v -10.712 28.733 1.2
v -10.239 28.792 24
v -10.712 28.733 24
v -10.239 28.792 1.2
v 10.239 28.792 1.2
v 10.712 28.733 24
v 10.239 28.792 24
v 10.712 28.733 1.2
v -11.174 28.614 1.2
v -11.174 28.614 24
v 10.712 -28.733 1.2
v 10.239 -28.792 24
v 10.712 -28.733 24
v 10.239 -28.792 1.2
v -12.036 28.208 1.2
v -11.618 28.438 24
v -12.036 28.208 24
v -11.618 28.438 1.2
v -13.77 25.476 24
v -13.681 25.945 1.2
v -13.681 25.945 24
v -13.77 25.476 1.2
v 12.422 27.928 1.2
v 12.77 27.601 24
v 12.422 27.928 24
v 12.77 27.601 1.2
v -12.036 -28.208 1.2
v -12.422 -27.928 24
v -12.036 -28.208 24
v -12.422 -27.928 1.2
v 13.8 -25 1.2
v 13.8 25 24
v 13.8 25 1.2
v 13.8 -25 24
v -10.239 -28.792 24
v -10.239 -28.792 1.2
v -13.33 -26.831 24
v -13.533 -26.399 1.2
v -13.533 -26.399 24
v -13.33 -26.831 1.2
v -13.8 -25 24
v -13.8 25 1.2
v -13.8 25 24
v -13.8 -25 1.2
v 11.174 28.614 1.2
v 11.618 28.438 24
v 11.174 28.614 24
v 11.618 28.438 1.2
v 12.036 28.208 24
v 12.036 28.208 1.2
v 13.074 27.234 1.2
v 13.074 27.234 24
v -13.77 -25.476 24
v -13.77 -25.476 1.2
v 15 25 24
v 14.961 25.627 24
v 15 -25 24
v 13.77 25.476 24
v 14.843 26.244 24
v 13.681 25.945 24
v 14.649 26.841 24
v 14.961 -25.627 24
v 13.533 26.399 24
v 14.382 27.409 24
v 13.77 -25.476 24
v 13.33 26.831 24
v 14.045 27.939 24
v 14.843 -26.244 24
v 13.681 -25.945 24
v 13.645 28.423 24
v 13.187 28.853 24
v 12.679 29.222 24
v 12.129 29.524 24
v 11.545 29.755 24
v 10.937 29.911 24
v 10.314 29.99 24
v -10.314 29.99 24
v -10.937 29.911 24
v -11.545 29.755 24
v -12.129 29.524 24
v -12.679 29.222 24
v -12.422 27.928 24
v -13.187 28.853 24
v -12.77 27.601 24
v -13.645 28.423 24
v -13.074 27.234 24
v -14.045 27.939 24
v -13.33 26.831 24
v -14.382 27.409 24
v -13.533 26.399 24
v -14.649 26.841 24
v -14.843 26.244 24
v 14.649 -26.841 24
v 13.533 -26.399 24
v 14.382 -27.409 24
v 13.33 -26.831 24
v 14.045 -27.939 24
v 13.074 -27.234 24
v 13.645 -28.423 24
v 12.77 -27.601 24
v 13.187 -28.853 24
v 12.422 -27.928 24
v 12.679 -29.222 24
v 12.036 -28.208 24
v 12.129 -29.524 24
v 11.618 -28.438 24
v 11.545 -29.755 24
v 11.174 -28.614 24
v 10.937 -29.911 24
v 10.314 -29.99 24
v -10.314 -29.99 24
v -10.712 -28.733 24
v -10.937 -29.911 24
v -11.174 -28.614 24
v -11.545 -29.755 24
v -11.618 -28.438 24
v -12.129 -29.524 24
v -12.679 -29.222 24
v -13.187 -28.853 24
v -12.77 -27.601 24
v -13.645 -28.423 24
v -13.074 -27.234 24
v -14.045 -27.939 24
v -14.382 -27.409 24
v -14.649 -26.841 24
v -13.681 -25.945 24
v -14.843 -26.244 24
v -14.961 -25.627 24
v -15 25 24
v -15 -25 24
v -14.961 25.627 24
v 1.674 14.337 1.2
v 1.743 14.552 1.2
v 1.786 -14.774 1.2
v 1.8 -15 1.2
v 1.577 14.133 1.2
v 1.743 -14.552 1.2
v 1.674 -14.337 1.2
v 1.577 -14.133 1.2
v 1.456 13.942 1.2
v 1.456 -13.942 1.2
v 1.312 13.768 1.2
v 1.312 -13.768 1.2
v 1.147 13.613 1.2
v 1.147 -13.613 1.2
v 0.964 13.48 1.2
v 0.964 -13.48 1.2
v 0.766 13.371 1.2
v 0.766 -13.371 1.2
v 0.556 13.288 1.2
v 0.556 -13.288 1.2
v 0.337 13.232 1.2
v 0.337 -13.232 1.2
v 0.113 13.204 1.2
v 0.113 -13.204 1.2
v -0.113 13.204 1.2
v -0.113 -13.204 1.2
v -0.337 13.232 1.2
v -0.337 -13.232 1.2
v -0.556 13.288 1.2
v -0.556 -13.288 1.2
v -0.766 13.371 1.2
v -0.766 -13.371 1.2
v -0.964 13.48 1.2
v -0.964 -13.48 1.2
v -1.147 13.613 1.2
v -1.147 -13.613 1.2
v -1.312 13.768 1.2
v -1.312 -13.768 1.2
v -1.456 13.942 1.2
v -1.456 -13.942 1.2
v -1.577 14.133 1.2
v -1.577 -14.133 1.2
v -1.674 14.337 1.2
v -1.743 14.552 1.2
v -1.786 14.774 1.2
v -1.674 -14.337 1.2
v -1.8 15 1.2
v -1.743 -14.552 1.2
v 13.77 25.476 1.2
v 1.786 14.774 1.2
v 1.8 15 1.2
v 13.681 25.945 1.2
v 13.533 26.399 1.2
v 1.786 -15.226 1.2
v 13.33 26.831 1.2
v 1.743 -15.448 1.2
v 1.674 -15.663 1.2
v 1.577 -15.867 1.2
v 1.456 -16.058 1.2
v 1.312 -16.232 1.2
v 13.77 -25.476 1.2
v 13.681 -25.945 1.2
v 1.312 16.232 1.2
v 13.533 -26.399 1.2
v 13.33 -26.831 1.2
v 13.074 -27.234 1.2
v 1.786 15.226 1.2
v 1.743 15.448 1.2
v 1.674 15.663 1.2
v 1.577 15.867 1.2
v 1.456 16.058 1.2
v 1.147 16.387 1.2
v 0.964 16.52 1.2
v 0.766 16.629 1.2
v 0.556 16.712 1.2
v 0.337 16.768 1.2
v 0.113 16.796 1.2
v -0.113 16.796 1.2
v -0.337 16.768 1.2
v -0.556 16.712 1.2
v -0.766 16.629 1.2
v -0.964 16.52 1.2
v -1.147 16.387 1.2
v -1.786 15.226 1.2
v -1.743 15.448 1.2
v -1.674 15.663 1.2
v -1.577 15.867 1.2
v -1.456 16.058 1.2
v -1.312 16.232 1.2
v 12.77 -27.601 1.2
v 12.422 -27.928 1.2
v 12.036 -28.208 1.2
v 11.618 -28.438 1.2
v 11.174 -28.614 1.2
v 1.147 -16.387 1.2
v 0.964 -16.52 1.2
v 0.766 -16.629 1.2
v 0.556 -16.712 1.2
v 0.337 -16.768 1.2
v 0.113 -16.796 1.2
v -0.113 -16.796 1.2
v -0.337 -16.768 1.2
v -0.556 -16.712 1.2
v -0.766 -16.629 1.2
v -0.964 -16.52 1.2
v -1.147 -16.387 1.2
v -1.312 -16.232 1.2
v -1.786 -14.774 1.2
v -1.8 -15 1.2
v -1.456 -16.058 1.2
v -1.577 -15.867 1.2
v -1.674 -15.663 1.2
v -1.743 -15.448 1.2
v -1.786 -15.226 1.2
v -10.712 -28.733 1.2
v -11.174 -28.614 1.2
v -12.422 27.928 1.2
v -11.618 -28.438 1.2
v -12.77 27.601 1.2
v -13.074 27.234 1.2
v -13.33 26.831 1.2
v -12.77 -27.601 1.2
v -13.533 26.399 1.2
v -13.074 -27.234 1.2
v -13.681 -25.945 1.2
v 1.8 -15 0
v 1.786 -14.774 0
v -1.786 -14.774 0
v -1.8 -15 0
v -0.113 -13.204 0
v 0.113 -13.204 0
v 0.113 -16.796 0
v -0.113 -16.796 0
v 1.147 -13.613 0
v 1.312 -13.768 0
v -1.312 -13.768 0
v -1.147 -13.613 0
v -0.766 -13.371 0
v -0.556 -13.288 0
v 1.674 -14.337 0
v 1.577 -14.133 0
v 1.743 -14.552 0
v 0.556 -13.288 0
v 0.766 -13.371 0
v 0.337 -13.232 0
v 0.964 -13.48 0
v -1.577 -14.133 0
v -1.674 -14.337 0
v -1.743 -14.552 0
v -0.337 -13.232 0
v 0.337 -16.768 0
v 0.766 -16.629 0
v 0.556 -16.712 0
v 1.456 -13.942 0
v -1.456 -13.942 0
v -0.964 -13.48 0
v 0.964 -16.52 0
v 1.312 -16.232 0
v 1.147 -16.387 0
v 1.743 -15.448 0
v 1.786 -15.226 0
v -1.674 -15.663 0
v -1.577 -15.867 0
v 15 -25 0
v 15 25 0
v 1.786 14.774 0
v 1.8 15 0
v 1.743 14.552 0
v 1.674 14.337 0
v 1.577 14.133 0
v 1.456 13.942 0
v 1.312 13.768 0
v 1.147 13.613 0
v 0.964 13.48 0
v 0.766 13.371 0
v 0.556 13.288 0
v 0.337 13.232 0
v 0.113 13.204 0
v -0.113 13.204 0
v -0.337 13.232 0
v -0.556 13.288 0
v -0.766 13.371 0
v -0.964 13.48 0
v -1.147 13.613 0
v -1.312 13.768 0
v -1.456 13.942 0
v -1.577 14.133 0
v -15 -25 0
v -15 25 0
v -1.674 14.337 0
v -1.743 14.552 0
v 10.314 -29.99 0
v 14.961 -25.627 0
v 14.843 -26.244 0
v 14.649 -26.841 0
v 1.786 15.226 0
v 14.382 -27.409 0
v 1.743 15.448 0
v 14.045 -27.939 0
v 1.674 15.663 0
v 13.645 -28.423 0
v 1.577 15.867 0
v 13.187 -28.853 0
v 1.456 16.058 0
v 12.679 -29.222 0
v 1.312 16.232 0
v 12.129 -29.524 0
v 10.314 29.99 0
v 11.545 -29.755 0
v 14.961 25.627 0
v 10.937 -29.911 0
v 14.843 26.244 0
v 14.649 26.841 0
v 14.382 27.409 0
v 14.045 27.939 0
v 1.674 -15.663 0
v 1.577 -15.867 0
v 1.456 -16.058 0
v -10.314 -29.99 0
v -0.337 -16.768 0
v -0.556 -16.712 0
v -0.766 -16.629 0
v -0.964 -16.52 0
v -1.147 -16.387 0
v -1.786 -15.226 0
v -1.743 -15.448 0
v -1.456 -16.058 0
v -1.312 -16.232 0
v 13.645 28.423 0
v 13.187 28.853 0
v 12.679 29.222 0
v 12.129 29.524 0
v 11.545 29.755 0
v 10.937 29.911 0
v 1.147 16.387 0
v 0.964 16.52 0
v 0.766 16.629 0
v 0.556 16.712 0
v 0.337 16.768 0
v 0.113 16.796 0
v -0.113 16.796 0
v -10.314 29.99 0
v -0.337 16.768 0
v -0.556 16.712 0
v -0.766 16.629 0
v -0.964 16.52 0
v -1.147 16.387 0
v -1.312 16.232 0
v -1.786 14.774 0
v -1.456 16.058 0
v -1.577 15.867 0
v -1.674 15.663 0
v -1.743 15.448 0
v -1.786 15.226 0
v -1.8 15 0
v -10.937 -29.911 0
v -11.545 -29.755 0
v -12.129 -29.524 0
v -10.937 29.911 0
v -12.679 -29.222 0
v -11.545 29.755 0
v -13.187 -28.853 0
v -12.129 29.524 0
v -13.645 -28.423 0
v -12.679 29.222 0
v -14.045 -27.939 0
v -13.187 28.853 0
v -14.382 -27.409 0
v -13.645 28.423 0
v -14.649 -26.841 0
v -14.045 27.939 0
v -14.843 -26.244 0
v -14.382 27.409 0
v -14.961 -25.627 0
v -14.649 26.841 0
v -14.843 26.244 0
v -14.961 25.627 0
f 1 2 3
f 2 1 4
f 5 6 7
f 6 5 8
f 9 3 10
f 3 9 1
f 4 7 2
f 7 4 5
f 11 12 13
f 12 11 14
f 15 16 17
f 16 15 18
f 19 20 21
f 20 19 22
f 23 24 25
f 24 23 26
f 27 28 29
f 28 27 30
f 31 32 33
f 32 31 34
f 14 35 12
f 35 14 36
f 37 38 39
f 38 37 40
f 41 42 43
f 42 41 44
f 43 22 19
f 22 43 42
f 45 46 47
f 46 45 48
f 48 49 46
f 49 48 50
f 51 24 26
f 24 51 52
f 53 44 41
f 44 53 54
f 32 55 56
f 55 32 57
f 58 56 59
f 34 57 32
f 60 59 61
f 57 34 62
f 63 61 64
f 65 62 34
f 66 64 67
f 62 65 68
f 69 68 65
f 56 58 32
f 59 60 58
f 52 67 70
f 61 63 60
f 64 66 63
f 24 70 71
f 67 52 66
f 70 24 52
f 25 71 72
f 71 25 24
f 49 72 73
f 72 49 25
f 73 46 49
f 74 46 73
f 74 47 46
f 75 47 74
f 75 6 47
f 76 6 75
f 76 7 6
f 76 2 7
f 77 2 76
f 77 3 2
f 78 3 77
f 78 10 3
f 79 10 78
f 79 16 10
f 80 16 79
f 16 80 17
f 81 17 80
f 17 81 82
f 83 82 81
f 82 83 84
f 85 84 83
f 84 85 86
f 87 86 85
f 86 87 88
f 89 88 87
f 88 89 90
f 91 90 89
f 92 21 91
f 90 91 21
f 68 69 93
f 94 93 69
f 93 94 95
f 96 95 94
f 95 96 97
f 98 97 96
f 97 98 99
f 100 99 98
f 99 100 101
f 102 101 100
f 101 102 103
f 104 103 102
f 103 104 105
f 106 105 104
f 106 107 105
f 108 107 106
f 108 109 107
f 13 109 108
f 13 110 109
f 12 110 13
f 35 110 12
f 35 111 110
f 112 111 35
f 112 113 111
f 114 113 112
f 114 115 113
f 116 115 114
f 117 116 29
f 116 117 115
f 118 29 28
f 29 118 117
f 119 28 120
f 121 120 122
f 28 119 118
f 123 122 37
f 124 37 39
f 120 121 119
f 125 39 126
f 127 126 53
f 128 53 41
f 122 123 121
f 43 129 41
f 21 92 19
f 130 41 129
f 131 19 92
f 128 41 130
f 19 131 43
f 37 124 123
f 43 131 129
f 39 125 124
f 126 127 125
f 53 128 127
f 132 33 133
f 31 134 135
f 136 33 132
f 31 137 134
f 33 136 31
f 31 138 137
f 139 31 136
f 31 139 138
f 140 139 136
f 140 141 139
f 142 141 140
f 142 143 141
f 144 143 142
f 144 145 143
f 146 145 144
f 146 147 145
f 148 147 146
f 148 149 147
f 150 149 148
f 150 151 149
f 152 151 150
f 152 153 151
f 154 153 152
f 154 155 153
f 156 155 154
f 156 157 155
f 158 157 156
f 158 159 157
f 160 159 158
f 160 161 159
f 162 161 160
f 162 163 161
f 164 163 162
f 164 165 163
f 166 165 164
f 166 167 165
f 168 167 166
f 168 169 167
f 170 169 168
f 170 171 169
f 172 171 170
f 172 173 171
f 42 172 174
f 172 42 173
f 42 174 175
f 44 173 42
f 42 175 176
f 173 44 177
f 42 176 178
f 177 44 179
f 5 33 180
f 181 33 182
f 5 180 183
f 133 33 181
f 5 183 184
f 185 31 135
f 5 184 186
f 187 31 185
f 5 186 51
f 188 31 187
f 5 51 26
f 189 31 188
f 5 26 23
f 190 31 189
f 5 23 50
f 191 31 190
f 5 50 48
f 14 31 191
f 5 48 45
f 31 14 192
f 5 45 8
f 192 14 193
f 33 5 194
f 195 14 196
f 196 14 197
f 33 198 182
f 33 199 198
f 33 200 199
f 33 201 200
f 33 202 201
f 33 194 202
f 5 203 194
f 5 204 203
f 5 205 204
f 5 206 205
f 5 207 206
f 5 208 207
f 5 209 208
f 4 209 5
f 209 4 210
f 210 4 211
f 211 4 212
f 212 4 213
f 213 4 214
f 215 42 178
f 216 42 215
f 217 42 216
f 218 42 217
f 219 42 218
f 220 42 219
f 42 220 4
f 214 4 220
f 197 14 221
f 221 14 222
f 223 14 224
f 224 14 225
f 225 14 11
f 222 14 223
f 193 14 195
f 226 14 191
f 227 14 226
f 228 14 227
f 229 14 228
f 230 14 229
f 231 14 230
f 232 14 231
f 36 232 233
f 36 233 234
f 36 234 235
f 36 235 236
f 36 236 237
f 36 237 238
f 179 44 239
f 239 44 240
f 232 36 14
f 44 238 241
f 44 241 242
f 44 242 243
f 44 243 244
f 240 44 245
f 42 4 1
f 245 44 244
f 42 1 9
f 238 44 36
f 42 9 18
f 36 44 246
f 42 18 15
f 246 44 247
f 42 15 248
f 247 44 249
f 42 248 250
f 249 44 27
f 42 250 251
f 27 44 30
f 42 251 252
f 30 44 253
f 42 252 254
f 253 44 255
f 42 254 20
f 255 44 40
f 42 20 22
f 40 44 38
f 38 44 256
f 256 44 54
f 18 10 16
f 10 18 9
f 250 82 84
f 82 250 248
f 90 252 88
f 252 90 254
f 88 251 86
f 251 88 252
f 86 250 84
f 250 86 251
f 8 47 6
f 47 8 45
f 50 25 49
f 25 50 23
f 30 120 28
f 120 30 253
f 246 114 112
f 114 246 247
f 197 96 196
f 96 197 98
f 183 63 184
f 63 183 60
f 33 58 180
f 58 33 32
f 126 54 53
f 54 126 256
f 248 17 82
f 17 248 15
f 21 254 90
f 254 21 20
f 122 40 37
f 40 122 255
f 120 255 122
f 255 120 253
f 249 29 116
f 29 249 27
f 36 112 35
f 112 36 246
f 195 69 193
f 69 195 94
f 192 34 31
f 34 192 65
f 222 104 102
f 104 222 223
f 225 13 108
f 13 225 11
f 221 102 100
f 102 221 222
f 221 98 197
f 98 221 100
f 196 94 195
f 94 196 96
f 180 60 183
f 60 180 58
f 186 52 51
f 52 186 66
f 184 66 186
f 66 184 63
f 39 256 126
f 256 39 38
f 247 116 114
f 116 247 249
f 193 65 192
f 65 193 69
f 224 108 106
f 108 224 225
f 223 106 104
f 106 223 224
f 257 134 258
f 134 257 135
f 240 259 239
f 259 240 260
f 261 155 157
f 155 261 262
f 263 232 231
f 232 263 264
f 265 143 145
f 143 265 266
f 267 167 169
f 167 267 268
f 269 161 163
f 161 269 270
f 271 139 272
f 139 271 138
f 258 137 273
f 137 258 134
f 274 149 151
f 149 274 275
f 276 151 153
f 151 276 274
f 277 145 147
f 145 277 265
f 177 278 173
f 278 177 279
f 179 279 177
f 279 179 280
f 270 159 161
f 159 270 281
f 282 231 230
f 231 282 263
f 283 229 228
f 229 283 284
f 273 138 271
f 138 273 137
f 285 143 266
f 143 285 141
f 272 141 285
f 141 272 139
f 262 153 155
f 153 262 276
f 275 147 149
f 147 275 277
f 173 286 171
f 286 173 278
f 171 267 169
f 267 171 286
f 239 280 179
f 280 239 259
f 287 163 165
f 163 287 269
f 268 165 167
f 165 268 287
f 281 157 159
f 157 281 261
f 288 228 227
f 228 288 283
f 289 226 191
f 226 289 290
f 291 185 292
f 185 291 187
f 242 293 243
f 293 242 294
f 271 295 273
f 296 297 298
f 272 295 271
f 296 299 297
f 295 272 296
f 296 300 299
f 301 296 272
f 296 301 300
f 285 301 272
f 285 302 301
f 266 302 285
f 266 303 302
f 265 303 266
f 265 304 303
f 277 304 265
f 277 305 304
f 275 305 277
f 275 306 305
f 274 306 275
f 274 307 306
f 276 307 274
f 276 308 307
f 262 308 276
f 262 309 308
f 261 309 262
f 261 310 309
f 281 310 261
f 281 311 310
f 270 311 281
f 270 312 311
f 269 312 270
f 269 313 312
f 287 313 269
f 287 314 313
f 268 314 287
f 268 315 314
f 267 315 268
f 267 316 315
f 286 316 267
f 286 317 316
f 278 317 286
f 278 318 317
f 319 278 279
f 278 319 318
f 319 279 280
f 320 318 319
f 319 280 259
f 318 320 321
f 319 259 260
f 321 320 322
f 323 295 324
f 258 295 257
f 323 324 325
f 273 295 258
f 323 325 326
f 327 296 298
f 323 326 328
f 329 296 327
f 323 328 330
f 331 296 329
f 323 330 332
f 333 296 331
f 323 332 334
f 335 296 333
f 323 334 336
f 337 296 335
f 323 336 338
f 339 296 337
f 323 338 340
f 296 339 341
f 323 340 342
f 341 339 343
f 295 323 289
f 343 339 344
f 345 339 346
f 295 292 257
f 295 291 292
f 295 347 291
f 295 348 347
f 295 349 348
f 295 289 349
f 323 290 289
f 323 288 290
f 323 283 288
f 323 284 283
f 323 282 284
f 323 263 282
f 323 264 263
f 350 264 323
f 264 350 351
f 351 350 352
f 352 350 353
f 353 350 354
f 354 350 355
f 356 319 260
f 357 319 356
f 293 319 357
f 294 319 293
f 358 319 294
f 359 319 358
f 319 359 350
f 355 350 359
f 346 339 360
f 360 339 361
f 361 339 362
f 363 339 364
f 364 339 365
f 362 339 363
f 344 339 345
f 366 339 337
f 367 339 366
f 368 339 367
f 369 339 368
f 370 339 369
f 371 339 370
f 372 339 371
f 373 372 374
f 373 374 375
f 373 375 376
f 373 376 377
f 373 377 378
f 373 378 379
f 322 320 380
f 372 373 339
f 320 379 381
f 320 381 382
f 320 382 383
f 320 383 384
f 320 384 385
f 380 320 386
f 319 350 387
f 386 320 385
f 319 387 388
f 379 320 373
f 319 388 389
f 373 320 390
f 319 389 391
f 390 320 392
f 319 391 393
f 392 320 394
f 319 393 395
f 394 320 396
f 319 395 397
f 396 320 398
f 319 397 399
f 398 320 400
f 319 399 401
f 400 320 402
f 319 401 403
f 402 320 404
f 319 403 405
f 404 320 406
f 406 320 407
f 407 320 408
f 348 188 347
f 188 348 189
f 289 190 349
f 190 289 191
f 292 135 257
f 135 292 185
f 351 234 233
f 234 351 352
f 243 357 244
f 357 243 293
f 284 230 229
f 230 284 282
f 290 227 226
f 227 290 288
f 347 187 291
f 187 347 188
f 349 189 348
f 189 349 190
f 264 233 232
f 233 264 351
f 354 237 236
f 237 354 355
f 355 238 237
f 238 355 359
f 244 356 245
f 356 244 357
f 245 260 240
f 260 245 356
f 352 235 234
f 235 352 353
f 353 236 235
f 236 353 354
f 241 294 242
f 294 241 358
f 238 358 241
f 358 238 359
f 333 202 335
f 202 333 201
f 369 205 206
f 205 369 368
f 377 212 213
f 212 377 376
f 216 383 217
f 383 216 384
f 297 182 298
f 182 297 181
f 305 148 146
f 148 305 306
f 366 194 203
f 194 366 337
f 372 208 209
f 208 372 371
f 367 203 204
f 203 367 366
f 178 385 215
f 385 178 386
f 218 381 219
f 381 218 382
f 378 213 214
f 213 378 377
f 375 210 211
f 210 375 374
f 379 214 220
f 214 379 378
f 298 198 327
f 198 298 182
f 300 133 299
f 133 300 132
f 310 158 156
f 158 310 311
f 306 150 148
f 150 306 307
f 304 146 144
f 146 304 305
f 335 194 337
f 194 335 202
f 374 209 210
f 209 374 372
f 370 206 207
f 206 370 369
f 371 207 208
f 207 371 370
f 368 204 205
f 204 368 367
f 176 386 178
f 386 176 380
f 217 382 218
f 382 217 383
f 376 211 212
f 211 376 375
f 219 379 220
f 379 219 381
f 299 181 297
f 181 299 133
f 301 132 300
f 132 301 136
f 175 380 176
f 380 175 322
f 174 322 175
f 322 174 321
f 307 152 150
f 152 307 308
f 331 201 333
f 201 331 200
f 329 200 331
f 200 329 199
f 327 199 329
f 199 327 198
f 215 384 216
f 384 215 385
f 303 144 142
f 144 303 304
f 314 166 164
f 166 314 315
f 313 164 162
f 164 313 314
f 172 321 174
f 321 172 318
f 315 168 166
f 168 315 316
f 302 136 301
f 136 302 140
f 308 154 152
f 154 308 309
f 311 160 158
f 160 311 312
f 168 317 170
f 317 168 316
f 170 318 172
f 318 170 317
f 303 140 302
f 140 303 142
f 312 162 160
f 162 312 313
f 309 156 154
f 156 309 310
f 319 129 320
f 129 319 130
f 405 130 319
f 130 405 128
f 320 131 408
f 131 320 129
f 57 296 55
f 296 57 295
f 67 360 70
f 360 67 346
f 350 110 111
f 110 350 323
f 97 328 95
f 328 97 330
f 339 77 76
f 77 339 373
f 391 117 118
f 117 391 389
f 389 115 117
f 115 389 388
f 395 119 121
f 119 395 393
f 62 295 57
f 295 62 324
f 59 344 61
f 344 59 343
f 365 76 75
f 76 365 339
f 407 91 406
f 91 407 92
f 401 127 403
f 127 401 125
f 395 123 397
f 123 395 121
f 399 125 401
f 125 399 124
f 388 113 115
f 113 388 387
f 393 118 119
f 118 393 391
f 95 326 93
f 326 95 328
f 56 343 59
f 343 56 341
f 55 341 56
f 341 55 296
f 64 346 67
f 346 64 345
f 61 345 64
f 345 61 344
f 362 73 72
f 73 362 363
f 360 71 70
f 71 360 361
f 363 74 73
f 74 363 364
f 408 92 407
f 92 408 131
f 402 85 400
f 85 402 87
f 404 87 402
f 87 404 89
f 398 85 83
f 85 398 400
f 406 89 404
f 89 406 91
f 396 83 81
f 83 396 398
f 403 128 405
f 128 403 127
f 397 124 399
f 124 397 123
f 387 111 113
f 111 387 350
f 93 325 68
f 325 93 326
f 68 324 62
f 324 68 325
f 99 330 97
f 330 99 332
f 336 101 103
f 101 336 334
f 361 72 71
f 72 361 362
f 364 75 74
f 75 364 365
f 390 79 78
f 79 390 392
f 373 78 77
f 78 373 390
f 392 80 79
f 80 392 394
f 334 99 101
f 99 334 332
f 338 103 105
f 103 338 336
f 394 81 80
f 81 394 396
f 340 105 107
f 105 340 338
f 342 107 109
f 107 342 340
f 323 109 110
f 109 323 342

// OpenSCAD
$fn = 50;


difference() {
	union() {
		hull() {
			translate(v = [-10.0000000000, 25.0000000000, 0]) {
				cylinder(h = 24, r = 5);
			}
			translate(v = [10.0000000000, 25.0000000000, 0]) {
				cylinder(h = 24, r = 5);
			}
			translate(v = [-10.0000000000, -25.0000000000, 0]) {
				cylinder(h = 24, r = 5);
			}
			translate(v = [10.0000000000, -25.0000000000, 0]) {
				cylinder(h = 24, r = 5);
			}
		}
	}
	union() {
		translate(v = [0, 0, 1.2000000000]) {
			hull() {
				translate(v = [-10.0000000000, 25.0000000000, 0]) {
					cylinder(h = 22.8000000000, r = 3.8000000000);
				}
				translate(v = [10.0000000000, 25.0000000000, 0]) {
					cylinder(h = 22.8000000000, r = 3.8000000000);
				}
				translate(v = [-10.0000000000, -25.0000000000, 0]) {
					cylinder(h = 22.8000000000, r = 3.8000000000);
				}
				translate(v = [10.0000000000, -25.0000000000, 0]) {
					cylinder(h = 22.8000000000, r = 3.8000000000);
				}
			}
		}
		#translate(v = [0.0000000000, -15.0000000000, 0]) {
			cylinder(h = 1.2000000000, r = 1.8000000000);
		}
		#translate(v = [0.0000000000, 15.0000000000, 0]) {
			cylinder(h = 1.2000000000, r = 1.8000000000);
		}
	}
}
